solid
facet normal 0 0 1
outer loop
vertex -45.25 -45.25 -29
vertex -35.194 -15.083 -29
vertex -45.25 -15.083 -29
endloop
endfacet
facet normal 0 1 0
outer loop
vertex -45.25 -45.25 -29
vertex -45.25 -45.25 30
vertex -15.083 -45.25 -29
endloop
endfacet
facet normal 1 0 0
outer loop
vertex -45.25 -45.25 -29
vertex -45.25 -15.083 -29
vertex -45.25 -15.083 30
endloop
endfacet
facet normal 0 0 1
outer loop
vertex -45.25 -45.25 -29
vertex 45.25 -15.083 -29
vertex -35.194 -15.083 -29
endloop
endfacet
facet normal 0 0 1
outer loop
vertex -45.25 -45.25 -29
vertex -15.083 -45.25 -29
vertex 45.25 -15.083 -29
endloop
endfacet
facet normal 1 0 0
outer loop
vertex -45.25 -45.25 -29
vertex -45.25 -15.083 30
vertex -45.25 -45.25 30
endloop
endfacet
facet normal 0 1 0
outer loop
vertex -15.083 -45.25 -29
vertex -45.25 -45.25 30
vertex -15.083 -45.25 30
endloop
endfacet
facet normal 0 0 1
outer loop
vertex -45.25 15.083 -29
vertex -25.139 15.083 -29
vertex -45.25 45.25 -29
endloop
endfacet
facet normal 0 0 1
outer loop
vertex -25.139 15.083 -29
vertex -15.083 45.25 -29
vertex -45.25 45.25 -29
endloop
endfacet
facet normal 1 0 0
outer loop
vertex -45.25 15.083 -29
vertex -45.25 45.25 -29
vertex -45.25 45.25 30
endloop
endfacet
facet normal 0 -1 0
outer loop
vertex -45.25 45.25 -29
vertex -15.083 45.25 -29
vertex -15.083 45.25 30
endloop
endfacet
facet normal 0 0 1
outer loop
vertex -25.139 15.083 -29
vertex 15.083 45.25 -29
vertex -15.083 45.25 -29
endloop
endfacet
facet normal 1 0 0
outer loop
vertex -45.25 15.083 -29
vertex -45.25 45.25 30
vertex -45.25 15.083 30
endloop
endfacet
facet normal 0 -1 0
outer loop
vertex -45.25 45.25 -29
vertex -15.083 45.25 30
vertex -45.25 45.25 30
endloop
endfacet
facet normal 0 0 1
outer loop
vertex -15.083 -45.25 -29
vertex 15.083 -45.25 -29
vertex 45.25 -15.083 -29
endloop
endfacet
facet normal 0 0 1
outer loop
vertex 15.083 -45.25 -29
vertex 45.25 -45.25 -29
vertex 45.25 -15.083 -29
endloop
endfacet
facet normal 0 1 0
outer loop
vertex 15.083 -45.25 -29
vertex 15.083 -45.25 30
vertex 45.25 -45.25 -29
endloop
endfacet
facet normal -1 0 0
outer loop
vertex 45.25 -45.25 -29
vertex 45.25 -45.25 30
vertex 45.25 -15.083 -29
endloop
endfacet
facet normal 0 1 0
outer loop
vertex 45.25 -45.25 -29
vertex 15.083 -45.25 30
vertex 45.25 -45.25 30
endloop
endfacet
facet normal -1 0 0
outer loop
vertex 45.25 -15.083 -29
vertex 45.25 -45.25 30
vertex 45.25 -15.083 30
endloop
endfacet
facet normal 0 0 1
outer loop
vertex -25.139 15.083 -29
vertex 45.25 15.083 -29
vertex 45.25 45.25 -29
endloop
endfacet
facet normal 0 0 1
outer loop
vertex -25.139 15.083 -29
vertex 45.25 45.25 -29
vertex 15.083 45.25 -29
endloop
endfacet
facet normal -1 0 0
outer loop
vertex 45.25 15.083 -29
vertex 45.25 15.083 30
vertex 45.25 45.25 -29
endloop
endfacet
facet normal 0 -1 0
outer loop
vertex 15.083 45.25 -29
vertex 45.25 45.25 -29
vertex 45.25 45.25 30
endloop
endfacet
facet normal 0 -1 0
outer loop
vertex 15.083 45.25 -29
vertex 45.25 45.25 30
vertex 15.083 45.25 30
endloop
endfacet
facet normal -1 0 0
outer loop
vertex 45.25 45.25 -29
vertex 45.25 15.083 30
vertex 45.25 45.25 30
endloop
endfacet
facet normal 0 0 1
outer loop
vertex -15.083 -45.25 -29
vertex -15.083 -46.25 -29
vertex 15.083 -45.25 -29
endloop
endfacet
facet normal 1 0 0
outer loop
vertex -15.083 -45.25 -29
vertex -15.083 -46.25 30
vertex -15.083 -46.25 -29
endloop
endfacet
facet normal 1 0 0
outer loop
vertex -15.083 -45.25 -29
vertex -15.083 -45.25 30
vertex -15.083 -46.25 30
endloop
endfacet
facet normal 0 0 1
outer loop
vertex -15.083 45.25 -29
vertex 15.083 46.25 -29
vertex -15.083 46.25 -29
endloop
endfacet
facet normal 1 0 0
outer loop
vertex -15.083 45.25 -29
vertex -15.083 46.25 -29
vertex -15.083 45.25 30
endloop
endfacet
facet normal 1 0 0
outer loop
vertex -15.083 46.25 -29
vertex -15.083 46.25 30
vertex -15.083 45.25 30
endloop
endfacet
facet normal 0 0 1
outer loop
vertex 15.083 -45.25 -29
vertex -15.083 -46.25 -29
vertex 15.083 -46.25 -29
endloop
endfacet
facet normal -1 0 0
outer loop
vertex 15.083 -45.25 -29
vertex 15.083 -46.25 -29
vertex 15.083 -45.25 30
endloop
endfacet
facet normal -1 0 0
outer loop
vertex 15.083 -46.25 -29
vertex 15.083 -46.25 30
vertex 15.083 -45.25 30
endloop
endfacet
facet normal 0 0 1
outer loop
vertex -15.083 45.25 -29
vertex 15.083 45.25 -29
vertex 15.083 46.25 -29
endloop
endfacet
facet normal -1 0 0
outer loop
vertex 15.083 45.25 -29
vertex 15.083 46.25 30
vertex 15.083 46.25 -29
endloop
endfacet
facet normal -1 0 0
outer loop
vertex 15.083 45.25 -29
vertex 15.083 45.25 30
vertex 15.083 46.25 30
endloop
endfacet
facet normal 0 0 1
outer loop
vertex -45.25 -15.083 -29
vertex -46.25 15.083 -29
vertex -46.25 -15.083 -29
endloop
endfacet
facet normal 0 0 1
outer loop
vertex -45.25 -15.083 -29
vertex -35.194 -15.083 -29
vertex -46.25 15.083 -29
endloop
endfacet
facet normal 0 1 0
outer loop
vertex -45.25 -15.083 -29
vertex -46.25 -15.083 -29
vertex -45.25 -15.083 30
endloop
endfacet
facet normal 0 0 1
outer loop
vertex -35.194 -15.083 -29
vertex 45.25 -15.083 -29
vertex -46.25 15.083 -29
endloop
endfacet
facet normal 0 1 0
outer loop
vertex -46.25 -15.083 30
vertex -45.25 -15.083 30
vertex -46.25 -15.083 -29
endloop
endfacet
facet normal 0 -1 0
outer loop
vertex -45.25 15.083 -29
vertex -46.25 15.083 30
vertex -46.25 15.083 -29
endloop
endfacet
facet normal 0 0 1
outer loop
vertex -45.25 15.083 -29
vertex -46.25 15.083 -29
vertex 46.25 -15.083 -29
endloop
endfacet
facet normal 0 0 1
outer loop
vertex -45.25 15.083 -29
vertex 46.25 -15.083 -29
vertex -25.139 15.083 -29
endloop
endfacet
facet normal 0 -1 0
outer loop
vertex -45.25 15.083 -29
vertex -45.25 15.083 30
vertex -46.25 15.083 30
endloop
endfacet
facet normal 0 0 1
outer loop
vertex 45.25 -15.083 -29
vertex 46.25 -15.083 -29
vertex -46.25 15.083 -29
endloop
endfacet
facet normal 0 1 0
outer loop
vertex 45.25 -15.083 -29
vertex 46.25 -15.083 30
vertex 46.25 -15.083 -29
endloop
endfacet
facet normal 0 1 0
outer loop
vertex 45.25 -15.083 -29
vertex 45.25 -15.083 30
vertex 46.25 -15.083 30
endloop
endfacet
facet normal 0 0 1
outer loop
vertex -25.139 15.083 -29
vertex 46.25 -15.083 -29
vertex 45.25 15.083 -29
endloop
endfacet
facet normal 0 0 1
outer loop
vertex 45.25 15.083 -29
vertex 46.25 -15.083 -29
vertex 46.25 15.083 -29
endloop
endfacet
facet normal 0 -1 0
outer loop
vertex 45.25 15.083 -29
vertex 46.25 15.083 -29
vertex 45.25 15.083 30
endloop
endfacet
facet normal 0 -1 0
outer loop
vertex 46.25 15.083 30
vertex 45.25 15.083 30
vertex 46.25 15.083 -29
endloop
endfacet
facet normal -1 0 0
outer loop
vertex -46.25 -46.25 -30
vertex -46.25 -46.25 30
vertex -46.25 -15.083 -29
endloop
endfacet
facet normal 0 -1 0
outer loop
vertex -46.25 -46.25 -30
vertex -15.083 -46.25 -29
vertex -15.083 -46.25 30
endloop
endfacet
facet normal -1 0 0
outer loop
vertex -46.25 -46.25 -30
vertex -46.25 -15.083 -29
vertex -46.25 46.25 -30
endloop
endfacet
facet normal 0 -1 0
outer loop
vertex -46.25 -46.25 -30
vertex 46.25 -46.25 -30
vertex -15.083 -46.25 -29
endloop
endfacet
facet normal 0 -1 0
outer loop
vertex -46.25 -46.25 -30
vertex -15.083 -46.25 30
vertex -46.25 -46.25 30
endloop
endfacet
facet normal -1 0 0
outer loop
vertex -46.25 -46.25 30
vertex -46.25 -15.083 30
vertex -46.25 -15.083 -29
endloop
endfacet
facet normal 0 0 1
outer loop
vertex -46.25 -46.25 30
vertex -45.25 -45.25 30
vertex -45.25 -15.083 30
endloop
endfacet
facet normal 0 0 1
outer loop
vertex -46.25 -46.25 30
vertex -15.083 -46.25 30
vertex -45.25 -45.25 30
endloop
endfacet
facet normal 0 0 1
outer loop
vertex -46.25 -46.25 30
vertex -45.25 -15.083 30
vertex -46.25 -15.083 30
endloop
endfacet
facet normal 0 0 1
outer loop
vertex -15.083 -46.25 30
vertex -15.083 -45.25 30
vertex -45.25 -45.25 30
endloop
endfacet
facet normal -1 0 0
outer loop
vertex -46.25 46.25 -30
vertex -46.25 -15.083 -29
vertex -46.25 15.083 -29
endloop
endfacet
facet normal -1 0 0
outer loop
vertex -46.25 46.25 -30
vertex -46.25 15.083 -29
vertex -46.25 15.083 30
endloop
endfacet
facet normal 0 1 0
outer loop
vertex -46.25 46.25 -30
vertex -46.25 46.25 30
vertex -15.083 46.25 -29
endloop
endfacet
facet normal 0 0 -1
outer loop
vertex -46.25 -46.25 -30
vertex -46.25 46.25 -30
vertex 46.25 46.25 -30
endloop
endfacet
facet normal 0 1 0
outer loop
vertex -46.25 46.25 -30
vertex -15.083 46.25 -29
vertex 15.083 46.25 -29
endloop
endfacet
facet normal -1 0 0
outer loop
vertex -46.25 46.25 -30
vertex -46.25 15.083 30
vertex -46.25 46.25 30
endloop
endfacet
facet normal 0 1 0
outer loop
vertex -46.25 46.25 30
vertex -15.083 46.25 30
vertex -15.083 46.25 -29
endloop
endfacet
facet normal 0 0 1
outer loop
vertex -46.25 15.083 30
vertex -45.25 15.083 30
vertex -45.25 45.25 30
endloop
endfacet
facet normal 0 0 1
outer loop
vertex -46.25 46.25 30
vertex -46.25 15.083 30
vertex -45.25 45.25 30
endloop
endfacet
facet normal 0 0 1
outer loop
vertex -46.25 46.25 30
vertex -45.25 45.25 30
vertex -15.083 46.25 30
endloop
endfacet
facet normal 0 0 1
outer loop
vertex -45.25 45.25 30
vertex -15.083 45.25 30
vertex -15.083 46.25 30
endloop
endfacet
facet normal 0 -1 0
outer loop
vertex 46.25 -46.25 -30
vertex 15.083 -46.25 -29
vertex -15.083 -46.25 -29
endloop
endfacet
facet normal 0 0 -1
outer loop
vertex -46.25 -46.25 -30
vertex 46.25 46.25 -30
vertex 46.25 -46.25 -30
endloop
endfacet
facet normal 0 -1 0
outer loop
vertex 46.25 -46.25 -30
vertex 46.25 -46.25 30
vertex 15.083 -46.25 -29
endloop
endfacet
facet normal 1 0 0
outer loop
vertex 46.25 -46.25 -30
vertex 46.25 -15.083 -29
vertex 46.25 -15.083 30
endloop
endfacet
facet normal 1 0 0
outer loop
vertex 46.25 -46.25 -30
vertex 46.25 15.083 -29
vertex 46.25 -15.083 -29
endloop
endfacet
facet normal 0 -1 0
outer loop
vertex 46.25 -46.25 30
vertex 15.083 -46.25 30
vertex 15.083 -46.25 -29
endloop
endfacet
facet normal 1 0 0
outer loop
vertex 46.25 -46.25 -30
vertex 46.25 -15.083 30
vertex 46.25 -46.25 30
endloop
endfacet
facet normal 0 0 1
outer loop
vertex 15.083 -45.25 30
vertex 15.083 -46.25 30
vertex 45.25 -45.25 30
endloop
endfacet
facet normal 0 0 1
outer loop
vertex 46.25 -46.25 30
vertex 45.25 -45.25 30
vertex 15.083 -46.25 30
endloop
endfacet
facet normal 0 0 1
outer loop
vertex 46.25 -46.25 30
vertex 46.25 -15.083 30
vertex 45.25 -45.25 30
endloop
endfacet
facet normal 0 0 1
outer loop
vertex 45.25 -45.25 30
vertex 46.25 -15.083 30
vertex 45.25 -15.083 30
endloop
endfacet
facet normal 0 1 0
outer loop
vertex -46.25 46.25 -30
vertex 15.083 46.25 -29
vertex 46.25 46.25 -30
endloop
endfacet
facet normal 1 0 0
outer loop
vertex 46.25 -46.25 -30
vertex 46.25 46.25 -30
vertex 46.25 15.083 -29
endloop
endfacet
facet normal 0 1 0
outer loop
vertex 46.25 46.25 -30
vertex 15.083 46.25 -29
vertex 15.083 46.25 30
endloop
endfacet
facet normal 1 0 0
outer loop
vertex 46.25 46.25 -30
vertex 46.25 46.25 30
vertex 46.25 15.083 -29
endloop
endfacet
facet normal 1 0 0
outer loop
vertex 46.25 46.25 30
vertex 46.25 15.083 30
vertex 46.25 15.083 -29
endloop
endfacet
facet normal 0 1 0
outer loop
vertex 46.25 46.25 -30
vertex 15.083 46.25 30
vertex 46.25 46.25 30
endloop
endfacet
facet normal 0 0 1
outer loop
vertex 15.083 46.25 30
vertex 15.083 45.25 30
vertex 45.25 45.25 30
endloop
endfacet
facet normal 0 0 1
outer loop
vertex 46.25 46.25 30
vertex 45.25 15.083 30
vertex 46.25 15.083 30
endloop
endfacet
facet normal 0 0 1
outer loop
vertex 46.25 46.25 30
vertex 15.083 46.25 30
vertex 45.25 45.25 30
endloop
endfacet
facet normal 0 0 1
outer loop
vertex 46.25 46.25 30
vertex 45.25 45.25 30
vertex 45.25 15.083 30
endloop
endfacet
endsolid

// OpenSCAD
edge = 90.5;
height = 60;
wall = 2;

difference() {
  cube([ edge + wall, edge + wall, height ], center = true);

  union() {
    translate([ 0, 0, wall / 2 ]) cube([ edge, edge, height ], center = true);

    translate([ 0, 0, wall / 2 ])
        cube([ edge / 3, edge * 2, height ], center = true);

    translate([ 0, 0, wall / 2 ])
        cube([ edge * 2, edge / 3, height ], center = true);
  }
}
